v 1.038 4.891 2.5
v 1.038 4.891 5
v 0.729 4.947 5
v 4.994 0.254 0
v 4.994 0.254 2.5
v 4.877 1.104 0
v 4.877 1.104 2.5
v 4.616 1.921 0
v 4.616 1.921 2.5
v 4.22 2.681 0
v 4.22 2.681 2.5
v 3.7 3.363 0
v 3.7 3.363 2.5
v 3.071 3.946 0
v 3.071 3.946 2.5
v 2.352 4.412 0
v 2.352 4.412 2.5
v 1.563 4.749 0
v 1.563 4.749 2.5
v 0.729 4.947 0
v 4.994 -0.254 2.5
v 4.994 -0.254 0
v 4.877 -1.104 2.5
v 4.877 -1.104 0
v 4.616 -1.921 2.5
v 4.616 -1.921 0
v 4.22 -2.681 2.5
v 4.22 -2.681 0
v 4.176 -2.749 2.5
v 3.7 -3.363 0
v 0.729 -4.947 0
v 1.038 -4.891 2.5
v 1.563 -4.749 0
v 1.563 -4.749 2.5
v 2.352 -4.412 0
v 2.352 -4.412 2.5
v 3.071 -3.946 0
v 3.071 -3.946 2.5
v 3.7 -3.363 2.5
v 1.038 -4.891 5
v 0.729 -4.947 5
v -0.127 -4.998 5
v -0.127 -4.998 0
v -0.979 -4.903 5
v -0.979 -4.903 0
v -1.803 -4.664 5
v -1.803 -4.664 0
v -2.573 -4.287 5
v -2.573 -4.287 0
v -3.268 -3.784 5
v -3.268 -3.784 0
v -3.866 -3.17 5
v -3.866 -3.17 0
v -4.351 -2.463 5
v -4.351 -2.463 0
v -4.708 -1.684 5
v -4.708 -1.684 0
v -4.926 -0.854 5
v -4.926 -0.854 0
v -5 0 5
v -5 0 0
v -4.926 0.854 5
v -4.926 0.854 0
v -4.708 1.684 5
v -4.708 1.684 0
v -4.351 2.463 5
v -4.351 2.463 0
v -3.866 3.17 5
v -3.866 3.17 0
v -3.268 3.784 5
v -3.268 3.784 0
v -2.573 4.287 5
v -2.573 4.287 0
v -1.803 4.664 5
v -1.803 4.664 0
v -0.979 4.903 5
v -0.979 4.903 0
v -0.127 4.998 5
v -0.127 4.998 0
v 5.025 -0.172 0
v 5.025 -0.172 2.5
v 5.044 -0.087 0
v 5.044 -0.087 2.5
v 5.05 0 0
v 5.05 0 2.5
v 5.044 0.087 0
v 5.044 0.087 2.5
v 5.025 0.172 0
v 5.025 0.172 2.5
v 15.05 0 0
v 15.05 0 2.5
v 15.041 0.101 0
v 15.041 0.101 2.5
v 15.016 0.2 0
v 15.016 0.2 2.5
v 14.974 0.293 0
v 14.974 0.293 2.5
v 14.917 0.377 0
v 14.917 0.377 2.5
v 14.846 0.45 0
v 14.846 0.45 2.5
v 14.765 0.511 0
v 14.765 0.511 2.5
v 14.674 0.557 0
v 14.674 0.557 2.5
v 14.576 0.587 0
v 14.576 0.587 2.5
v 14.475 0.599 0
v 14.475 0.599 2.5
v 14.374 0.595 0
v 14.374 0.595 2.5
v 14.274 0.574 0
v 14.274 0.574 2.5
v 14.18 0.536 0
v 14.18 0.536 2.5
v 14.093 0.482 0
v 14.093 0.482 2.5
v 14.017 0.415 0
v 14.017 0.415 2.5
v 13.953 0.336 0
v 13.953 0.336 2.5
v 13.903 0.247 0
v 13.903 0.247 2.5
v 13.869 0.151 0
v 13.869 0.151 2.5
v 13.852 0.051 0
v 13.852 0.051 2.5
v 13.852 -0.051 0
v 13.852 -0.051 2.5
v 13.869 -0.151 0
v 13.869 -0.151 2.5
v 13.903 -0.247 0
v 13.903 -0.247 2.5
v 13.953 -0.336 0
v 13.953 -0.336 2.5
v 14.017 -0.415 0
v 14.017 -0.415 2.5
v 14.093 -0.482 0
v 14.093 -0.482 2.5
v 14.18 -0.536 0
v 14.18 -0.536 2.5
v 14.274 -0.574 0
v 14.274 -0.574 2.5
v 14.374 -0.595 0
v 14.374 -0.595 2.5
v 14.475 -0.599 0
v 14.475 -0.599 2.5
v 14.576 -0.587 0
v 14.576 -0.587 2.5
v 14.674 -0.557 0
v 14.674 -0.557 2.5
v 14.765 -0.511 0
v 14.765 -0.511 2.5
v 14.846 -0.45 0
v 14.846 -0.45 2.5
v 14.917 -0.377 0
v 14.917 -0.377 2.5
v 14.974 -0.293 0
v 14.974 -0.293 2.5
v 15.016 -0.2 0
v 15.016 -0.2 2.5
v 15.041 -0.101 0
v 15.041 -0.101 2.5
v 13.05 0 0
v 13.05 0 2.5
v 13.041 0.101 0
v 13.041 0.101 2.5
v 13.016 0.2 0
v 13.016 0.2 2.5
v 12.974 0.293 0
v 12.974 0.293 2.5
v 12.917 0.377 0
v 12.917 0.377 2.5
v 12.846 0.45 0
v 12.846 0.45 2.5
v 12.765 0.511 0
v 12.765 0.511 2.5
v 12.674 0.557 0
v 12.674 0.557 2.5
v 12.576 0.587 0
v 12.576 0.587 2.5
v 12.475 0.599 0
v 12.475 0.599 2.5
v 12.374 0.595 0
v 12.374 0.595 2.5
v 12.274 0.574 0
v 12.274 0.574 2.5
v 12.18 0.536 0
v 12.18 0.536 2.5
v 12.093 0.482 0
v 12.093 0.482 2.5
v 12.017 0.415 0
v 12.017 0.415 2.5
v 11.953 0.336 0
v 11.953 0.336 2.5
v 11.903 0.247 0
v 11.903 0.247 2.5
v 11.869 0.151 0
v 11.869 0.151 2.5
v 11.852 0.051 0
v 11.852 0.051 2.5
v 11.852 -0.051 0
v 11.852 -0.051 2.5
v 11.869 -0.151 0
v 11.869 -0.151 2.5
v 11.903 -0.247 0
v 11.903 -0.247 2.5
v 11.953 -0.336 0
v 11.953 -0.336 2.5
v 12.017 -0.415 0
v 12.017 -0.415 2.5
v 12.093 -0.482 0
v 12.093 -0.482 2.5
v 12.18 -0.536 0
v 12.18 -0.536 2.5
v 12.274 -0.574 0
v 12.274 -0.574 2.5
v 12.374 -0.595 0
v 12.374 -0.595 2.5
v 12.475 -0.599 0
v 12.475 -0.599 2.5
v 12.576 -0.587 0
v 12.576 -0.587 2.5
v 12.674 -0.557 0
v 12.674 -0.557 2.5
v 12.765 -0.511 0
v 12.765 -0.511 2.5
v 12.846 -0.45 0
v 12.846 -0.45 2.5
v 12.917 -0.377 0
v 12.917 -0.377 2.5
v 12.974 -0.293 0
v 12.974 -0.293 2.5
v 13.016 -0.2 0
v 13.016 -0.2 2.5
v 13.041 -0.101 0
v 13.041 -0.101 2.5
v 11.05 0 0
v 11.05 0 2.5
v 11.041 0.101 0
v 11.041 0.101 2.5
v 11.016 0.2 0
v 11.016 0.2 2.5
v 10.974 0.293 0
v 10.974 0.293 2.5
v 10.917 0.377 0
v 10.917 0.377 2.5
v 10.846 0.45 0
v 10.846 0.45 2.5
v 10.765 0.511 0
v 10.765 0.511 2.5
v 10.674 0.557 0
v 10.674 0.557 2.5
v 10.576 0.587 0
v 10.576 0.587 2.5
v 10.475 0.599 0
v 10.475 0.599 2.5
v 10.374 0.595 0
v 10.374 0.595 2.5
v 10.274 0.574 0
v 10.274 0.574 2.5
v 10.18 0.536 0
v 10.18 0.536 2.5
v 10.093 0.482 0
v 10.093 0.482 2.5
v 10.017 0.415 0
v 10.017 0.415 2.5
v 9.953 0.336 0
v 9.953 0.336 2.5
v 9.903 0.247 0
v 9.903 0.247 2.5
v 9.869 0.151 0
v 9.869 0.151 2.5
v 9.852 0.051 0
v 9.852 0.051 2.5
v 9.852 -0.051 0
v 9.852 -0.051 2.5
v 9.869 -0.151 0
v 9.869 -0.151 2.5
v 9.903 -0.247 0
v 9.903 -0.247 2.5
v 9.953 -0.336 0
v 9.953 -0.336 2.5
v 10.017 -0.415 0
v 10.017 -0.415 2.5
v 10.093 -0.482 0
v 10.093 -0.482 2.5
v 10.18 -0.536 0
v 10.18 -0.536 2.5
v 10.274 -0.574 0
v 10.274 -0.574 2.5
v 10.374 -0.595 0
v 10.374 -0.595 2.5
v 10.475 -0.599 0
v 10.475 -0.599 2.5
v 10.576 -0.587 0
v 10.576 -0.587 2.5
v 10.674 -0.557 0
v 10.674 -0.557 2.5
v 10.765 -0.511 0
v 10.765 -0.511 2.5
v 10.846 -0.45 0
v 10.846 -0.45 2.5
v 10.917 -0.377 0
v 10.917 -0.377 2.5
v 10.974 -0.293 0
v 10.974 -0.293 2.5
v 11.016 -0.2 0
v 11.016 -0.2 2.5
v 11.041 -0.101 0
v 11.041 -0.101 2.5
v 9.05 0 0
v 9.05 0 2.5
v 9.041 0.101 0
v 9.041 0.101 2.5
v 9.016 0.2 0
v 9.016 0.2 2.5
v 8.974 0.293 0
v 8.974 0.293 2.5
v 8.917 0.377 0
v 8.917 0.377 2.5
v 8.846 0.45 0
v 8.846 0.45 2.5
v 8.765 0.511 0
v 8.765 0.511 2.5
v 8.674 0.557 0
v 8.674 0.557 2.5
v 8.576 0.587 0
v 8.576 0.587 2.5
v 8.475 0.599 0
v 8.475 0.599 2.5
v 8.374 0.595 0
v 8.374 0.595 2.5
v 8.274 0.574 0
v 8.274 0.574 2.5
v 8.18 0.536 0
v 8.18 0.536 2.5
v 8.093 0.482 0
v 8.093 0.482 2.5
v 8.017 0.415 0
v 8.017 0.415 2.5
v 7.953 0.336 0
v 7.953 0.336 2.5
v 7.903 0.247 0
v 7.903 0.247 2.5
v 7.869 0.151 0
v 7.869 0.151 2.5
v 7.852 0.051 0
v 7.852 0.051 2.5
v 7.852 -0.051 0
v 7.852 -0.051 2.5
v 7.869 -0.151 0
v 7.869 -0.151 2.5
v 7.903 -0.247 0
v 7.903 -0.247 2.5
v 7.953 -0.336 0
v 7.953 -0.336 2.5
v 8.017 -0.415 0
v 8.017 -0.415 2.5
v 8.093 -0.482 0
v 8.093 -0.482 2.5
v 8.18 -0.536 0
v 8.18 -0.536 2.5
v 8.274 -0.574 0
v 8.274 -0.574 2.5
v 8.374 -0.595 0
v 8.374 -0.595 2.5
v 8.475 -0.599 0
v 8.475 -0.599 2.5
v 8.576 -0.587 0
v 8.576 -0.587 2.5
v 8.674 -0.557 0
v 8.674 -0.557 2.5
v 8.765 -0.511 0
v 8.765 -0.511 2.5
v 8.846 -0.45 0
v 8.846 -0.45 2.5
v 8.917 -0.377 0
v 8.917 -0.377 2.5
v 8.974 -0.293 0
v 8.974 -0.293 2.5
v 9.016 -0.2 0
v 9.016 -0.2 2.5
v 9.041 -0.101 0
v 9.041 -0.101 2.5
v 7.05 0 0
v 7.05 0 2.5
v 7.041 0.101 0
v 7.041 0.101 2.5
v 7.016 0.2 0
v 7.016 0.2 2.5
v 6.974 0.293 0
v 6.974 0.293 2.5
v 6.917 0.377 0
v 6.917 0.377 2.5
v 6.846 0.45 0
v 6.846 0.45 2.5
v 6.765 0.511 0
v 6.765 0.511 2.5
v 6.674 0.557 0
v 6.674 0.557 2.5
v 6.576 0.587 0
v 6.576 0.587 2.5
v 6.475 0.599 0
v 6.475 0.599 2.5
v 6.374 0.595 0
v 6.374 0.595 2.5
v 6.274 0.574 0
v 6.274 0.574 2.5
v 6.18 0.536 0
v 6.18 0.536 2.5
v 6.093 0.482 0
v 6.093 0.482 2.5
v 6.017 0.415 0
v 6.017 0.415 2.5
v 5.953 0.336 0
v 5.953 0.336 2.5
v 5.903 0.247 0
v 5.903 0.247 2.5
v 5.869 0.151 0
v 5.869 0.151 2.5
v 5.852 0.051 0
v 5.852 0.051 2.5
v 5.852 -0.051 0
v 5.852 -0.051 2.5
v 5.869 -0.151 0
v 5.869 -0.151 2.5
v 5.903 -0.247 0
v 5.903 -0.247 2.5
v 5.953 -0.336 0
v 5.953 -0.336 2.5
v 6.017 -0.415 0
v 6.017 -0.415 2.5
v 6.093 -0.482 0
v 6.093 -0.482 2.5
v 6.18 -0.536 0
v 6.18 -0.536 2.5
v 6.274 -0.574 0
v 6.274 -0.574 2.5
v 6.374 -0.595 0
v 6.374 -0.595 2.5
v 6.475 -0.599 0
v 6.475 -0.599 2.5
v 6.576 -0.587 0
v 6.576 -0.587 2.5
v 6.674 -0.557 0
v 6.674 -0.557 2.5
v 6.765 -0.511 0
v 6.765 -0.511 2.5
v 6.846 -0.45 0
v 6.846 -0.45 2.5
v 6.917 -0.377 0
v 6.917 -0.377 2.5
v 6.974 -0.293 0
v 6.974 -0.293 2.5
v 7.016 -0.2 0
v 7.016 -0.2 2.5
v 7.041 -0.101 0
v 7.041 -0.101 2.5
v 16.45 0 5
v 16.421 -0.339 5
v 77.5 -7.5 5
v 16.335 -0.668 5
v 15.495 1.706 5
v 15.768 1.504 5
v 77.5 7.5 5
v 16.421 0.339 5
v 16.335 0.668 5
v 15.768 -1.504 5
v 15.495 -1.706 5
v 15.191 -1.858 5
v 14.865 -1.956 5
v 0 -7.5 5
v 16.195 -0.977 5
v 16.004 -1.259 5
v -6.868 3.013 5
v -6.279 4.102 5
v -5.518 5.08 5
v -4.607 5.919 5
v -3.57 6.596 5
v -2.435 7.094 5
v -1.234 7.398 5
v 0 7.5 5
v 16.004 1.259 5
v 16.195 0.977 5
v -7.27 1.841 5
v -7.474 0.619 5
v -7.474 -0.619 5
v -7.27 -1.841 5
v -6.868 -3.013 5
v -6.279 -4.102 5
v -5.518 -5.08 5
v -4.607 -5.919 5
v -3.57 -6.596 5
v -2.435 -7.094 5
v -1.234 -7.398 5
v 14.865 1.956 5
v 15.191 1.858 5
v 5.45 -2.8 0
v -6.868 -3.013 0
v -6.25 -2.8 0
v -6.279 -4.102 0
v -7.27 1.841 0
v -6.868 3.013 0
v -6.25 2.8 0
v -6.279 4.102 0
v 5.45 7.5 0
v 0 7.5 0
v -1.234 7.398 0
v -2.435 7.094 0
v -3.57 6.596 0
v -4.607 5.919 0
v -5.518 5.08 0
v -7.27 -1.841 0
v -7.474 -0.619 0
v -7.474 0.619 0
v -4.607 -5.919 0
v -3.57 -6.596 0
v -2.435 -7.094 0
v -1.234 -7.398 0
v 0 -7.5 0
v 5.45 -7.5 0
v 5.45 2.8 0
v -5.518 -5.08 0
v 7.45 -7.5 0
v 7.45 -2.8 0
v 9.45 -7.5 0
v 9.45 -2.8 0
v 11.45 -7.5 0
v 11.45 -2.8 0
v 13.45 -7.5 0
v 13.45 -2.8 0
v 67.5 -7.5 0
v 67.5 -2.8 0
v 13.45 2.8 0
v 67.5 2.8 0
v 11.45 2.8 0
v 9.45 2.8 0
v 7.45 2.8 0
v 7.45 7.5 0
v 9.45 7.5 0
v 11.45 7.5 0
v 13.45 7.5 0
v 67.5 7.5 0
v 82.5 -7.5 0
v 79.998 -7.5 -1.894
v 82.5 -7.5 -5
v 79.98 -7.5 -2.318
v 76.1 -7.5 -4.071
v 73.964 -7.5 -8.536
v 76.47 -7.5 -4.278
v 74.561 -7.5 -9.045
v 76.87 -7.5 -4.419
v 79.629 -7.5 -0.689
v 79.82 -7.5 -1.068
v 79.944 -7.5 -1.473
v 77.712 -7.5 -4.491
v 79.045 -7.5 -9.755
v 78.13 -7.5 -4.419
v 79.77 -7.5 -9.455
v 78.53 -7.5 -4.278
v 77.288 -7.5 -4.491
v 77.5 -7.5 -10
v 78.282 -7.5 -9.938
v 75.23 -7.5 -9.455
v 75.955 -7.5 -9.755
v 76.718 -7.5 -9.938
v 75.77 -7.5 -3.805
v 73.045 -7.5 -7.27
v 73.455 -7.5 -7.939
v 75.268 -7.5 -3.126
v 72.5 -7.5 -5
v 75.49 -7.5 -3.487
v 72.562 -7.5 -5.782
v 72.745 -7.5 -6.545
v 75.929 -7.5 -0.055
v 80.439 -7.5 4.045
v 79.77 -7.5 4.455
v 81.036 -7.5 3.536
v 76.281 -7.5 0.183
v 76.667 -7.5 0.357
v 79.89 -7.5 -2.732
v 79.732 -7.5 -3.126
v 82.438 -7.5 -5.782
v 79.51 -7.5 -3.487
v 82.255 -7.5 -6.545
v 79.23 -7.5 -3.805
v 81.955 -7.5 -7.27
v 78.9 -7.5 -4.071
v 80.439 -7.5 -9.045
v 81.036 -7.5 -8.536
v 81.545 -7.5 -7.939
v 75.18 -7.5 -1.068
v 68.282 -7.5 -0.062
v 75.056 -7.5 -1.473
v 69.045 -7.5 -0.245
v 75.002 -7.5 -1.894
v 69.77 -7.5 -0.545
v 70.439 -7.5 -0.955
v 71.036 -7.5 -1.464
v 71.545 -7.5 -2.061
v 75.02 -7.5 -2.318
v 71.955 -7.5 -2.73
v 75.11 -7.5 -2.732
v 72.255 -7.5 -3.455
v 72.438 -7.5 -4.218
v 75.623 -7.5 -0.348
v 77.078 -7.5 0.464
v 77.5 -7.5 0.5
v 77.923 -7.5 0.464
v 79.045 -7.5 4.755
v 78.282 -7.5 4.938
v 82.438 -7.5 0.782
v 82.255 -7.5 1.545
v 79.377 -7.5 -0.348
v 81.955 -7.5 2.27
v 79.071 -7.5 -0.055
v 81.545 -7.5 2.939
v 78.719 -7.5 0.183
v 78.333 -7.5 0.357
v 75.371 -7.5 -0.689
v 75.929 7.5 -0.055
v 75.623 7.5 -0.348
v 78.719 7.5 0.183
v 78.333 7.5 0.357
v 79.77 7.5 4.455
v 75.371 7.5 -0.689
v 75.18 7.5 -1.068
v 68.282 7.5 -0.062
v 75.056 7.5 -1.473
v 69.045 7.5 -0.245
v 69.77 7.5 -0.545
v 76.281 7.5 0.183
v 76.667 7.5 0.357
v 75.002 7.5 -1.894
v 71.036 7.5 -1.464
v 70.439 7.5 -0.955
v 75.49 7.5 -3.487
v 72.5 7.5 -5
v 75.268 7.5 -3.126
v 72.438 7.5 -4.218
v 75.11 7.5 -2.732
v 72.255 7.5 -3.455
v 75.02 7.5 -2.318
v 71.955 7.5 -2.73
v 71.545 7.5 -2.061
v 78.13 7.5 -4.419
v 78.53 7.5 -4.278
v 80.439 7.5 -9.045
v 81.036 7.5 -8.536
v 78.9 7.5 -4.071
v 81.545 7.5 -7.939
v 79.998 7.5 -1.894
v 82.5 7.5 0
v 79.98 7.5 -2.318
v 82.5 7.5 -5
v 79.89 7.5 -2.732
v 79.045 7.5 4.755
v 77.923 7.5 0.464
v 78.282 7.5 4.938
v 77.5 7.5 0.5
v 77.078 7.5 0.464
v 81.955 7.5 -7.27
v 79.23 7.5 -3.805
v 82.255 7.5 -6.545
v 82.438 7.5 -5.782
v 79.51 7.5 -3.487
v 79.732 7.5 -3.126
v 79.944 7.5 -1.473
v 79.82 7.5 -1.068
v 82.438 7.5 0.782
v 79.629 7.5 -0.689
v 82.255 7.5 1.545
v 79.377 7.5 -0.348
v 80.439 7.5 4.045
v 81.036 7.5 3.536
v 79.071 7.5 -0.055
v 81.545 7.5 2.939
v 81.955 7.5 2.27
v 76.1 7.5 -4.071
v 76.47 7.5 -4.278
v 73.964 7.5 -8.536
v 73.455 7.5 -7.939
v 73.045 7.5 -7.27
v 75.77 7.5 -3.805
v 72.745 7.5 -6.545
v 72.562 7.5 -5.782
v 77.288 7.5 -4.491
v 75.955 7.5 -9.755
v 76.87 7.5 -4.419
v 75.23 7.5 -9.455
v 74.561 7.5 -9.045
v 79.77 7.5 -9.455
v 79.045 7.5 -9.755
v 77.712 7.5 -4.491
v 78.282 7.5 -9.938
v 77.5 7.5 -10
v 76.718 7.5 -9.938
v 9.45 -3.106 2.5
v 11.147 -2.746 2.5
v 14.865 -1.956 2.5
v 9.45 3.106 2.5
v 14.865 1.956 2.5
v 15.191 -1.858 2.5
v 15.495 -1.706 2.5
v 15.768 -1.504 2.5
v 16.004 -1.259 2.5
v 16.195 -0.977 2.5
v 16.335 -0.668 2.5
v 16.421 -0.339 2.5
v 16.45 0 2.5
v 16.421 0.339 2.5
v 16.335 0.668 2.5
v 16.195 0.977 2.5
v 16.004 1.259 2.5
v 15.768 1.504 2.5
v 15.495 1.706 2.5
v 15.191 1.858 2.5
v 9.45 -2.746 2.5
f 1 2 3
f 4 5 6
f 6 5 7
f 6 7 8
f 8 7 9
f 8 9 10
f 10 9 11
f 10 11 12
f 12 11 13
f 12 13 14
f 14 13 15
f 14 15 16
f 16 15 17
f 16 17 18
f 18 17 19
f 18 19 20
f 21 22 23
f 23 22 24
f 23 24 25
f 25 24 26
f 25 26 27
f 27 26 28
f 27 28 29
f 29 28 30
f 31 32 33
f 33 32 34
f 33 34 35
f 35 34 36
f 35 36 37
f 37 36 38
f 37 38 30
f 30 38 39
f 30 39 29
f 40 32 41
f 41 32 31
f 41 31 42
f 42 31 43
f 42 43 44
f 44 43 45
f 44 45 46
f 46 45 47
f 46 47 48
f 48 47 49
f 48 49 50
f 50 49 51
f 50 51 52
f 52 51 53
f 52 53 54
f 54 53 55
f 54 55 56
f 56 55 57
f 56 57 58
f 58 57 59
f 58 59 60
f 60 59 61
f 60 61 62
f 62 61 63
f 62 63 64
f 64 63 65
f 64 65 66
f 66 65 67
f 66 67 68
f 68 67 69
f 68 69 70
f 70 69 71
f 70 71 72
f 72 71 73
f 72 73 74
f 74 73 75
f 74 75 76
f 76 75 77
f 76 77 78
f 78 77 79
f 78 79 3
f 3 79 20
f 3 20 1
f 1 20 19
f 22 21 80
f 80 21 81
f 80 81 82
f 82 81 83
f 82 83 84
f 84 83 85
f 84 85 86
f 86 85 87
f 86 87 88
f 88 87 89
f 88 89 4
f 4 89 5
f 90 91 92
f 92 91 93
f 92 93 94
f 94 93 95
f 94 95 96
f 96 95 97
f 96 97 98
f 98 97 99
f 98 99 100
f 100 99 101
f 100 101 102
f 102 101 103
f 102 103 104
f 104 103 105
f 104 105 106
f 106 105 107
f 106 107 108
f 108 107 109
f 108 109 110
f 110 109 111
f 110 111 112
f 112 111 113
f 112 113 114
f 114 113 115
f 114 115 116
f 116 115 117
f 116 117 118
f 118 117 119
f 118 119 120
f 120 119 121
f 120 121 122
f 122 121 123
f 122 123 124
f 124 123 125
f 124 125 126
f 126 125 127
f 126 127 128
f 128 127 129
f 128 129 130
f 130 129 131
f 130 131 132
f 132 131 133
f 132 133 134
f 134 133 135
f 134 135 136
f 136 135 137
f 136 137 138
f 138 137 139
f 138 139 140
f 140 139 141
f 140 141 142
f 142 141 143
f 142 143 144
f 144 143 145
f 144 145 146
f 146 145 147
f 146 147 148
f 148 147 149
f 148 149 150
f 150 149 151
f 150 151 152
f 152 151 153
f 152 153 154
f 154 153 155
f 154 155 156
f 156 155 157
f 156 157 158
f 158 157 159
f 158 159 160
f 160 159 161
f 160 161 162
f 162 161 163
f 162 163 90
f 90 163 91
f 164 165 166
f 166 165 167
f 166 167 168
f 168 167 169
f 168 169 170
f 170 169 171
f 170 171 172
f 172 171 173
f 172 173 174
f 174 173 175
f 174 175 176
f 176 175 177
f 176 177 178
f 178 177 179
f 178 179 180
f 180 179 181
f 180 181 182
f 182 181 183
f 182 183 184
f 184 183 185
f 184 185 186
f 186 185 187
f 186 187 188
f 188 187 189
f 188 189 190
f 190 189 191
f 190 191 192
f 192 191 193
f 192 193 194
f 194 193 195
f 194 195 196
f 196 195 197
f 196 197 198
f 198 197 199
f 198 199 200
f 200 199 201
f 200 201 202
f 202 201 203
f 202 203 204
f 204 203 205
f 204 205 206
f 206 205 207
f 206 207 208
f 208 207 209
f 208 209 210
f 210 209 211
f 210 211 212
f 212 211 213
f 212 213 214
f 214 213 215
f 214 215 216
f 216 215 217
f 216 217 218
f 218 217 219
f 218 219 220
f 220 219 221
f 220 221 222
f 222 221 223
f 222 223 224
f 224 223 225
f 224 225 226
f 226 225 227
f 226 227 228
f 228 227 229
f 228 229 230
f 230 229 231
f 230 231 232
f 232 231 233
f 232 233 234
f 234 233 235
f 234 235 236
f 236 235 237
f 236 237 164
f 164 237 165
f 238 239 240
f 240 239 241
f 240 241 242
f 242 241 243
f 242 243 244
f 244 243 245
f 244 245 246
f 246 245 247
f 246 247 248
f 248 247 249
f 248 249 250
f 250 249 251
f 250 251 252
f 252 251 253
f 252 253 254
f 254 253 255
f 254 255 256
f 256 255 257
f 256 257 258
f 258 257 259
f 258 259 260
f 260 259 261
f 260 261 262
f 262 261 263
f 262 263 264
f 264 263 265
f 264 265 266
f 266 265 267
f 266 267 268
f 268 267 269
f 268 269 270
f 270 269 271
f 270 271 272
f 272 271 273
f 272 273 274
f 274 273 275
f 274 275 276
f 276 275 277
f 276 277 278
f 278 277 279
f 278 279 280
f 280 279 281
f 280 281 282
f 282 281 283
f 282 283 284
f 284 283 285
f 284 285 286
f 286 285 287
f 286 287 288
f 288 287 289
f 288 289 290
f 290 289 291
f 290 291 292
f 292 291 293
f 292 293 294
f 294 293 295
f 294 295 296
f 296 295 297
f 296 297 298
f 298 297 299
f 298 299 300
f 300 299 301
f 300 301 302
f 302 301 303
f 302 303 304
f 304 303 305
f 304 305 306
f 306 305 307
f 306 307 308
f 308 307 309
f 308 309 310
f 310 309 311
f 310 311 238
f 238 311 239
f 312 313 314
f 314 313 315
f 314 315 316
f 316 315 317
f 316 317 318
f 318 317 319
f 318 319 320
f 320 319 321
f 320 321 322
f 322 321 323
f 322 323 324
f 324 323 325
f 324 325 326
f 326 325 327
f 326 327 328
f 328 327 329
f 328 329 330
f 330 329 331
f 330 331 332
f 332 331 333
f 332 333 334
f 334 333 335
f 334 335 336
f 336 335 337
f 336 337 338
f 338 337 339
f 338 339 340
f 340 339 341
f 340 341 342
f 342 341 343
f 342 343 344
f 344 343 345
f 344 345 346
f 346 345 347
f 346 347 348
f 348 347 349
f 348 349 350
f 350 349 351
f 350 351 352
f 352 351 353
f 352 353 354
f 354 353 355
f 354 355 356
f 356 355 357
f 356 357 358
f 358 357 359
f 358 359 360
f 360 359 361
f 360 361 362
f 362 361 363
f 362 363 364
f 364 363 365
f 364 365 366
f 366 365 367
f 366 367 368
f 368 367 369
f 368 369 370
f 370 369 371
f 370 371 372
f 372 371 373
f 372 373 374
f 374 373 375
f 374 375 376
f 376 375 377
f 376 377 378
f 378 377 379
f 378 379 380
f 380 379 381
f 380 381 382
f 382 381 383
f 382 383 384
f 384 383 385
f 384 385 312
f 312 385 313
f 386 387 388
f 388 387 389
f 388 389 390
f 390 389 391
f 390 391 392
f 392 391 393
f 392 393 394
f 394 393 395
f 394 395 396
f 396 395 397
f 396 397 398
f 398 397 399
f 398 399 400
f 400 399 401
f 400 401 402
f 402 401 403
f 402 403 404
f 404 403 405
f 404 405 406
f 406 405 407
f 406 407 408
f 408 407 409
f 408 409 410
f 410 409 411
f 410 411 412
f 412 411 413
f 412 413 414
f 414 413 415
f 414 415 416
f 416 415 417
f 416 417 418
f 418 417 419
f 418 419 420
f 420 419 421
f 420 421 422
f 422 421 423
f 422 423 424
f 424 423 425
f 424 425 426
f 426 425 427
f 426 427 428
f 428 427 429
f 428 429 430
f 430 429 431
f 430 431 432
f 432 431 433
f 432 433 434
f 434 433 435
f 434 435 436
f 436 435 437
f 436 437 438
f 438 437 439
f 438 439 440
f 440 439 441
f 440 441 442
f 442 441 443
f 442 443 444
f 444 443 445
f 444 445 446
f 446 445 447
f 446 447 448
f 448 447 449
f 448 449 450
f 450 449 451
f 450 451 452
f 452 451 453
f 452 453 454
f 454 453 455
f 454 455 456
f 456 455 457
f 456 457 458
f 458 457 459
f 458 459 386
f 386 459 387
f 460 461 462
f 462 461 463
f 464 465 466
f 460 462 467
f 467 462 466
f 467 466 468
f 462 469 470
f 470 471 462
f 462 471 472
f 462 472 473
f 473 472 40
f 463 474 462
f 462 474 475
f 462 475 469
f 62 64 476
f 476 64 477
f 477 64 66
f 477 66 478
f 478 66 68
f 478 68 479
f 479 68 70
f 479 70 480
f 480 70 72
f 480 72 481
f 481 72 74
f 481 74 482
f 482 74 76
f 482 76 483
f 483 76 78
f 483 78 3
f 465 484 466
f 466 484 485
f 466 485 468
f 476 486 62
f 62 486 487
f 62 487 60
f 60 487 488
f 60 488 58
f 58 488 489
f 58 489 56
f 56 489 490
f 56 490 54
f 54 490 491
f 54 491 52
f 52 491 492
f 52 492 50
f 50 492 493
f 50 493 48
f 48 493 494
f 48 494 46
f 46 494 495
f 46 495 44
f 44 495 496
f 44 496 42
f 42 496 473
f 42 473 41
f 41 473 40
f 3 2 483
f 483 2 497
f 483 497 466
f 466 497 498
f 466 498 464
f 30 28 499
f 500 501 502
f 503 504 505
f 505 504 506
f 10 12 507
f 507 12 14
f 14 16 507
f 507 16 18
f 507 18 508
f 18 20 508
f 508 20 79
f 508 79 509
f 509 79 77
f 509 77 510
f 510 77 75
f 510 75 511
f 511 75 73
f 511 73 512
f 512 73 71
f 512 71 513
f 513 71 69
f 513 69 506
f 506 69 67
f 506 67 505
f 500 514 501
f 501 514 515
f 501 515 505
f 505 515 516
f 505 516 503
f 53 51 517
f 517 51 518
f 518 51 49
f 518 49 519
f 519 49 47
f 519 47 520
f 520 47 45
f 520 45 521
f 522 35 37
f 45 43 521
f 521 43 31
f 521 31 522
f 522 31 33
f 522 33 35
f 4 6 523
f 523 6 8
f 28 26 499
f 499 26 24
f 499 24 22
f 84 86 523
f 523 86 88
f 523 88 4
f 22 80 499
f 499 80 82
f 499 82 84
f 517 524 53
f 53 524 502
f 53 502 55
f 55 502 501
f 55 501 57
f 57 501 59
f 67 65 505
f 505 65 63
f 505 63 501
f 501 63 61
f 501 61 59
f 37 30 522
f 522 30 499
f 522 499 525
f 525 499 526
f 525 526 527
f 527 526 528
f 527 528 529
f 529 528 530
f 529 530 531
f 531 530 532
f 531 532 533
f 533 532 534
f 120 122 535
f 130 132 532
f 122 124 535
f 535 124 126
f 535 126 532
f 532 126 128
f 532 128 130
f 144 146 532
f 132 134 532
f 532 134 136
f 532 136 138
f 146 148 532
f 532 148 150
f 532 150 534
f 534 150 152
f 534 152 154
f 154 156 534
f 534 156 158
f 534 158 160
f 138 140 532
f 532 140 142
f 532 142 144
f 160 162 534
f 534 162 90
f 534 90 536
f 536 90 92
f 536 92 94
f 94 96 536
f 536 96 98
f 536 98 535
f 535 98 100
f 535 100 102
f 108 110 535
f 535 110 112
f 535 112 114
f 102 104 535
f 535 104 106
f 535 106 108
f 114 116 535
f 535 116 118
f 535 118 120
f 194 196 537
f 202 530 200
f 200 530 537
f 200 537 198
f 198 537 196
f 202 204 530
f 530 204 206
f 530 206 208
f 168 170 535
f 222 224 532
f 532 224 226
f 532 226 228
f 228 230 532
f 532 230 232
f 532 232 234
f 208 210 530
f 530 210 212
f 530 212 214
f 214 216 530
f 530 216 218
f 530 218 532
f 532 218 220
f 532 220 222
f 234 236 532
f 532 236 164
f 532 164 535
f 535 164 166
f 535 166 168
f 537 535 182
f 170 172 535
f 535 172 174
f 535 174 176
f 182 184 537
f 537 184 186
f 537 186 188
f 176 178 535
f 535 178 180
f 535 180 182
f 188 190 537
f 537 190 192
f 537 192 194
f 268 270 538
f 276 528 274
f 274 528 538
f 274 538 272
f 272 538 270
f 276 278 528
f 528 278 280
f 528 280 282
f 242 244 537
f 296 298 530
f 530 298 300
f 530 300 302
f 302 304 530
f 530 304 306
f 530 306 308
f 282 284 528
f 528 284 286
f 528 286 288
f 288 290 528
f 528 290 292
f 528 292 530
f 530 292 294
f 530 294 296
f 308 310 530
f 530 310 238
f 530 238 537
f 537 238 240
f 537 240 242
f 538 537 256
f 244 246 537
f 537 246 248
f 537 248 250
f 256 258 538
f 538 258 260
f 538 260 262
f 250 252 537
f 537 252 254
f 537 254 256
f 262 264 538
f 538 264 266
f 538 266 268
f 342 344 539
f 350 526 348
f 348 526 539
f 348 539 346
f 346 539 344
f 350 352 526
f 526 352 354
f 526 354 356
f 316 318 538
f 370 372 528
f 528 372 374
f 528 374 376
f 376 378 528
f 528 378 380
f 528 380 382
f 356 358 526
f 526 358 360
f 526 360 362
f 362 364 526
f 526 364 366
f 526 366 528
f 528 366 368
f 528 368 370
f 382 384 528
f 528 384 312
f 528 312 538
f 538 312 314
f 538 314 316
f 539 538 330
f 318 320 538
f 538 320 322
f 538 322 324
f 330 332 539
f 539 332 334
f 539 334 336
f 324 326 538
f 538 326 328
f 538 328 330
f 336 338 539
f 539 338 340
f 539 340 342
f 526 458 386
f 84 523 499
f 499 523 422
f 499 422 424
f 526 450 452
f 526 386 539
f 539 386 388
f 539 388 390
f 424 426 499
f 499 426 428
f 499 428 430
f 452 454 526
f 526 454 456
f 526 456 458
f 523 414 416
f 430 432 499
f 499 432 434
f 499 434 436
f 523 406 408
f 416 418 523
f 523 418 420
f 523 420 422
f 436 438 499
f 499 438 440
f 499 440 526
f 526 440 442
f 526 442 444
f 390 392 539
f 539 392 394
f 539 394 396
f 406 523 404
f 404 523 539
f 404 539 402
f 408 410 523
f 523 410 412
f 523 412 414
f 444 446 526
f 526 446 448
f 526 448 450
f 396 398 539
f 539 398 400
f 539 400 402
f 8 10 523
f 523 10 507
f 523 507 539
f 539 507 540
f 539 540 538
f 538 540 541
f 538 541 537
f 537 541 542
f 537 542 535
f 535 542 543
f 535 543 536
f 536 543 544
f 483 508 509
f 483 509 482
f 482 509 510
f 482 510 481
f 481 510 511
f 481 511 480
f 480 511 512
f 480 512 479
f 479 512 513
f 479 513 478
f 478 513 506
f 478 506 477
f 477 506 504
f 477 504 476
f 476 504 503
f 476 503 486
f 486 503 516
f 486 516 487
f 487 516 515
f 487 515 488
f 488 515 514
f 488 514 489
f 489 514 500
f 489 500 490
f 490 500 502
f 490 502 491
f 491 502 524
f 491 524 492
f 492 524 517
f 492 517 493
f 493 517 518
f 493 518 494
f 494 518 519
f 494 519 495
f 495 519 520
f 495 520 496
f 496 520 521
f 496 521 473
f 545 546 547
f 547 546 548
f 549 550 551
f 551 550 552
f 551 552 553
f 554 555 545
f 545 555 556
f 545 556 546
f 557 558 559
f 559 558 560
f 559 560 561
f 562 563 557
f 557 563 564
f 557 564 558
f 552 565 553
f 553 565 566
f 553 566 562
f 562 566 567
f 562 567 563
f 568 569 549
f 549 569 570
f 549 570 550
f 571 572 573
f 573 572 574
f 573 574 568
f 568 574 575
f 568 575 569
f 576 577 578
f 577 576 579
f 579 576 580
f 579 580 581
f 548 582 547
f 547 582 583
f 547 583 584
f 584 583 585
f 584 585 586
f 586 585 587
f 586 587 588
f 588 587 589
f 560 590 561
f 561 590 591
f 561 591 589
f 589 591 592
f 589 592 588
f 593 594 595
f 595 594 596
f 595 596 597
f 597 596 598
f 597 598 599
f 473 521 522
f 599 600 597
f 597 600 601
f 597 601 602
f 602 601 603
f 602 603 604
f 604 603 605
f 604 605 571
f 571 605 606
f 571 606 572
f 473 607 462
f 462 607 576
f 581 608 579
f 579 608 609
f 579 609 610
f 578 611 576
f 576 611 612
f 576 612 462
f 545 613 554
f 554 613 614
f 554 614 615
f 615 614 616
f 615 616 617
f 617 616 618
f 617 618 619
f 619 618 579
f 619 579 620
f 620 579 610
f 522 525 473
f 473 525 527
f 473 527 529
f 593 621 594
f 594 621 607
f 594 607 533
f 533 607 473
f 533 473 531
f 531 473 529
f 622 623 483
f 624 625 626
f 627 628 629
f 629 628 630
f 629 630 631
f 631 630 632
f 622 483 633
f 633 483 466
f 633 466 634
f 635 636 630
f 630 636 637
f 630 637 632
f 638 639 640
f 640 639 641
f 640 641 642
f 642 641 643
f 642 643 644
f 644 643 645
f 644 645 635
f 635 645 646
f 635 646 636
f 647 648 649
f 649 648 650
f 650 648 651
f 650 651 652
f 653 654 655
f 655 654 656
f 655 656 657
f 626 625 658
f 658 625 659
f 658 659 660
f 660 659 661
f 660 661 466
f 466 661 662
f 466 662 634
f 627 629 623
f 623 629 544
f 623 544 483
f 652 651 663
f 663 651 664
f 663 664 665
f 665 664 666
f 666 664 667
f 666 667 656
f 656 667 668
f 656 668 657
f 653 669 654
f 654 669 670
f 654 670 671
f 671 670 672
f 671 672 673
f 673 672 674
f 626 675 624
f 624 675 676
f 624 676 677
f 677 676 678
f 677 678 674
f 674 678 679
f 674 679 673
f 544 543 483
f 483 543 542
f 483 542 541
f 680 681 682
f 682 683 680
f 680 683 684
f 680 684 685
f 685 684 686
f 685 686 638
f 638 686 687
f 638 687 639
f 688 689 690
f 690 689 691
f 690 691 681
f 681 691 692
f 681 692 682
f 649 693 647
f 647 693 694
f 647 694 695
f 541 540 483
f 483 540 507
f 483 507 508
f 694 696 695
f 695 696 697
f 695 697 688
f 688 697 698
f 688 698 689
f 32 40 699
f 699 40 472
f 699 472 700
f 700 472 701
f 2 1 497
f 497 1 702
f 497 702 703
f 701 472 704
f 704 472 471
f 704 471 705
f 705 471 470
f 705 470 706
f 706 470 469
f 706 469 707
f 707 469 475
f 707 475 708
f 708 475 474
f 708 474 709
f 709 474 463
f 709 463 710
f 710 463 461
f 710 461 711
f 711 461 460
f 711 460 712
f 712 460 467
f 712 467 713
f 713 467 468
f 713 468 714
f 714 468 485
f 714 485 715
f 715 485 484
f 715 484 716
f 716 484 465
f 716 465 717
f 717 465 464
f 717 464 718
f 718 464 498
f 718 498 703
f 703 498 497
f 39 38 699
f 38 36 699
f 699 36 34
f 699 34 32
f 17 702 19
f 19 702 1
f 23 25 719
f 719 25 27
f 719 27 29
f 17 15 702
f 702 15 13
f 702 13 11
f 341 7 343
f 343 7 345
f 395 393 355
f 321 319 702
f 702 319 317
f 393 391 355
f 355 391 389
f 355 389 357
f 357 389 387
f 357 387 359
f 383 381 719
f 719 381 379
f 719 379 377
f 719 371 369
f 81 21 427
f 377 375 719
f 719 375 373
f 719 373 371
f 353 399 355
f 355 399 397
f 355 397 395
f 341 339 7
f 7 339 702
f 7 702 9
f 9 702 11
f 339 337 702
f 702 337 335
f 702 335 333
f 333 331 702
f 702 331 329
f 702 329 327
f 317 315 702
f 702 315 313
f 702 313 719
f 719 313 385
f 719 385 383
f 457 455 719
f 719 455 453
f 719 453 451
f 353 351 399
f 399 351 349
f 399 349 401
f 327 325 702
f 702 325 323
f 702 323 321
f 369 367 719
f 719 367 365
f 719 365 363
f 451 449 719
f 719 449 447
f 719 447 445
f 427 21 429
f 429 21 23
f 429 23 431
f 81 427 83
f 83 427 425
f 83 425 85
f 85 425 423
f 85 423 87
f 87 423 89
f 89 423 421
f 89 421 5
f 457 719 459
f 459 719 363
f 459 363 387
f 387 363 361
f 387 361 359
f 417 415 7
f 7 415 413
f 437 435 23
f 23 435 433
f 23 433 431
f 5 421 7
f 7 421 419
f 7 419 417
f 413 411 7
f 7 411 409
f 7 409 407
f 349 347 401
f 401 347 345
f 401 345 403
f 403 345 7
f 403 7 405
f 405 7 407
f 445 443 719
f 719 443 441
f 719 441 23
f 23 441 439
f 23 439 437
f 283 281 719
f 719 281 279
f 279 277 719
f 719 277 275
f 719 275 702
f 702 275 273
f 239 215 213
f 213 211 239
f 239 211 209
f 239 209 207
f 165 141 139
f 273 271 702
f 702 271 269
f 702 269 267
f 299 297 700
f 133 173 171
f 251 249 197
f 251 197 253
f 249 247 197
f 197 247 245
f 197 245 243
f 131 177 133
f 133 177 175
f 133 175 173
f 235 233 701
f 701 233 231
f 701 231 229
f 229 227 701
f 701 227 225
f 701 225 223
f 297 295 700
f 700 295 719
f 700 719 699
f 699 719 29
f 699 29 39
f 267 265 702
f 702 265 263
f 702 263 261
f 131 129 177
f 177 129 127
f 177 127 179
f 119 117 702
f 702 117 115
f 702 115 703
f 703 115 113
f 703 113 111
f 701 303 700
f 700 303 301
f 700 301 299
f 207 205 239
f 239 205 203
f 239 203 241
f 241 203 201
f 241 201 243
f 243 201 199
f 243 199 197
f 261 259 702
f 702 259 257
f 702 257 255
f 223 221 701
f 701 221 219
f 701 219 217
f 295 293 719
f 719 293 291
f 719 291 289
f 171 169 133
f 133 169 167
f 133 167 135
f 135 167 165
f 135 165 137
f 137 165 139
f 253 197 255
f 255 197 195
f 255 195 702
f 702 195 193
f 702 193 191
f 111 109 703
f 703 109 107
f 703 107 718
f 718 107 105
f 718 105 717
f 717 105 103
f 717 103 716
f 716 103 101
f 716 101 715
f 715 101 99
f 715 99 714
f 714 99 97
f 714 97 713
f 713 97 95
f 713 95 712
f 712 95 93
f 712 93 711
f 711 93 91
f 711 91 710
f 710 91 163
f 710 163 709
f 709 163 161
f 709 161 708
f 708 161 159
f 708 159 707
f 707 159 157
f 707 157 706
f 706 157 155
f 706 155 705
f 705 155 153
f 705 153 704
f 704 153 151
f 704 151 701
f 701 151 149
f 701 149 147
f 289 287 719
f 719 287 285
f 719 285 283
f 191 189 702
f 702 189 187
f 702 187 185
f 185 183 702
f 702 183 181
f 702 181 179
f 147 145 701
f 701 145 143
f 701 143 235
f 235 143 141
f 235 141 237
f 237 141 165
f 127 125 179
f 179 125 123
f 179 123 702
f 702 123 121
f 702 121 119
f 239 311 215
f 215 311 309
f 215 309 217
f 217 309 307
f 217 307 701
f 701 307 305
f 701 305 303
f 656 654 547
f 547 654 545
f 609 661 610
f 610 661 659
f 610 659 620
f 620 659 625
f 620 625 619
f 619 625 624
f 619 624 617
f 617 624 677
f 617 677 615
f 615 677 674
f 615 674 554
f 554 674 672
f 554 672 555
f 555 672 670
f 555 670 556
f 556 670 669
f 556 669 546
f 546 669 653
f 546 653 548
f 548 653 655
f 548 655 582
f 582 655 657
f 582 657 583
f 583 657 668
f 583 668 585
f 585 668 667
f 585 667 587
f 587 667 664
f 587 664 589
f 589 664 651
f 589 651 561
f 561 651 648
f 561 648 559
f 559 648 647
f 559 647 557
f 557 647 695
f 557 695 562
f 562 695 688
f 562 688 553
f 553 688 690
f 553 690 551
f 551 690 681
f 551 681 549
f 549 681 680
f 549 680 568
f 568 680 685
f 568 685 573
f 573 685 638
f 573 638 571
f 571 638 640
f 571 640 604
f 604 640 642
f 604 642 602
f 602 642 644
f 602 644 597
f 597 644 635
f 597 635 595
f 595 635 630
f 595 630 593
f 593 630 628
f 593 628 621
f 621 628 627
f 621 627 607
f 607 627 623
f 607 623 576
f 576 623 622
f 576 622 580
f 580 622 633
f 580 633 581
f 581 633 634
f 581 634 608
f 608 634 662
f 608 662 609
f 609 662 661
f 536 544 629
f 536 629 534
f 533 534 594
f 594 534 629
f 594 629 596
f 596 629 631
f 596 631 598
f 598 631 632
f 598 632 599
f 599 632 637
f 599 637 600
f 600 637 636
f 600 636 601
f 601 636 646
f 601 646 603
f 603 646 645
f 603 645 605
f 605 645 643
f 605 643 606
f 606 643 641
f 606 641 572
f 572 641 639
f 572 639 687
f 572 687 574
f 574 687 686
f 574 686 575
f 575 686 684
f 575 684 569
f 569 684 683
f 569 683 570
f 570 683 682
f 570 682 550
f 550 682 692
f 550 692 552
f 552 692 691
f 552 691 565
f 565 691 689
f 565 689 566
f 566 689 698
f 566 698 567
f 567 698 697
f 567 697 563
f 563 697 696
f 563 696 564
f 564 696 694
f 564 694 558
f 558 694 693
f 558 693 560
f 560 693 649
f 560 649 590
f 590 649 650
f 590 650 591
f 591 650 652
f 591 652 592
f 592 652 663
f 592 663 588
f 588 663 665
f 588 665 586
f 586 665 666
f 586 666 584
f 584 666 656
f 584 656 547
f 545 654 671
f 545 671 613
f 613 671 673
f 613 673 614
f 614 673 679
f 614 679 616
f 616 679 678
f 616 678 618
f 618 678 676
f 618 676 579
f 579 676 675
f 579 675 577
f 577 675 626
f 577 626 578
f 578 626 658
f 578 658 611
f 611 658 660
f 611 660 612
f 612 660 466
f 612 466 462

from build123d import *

# Parameters (mm, degrees)
SKETCH1_R           = 5
SKETCH1_R_2         = 2.5
BOSS_EXTRUDE1_DEPTH = 5
SKETCH2_R           = 0.6
CUT_EXTRUDE1_DEPTH  = 83.990963363
CUT_EXTRUDE2_START  = -2.5
CUT_EXTRUDE2_DEPTH  = 2.5
SKETCH4_W           = 10
SKETCH4_H           = 15
BOSS_EXTRUDE2_DEPTH = 15
SKETCH5_R           = 2.5
CUT_EXTRUDE3_DEPTH  = 15
FILLET1_R           = 5


with BuildPart() as part:
    # Sketch1 → Boss-Extrude1 (new body)
    with BuildSketch(Plane.XY):
        with BuildLine():
            Line((0, 7.5), (75, 7.5))
            ThreePointArc((75, 7.5), (82.5, 0), (75, -7.5))
            Line((75, -7.5), (0, -7.5))
            ThreePointArc((0, -7.5), (-7.5, 0), (0, 7.5))
        make_face()
        Circle(SKETCH1_R, mode=Mode.SUBTRACT)
        with Locations((75, 0)):
            Circle(SKETCH1_R_2, mode=Mode.SUBTRACT)
    extrude(amount=BOSS_EXTRUDE1_DEPTH)

    # Sketch2 → Cut-Extrude1 (cut, through all)
    with BuildSketch(Plane.XY.offset(5)):
        with Locations((4.45, 0)):
            Circle(SKETCH2_R)
        with Locations((6.45, 0)):
            Circle(SKETCH2_R)
        with Locations((8.45, 0)):
            Circle(SKETCH2_R)
        with Locations((10.45, 0)):
            Circle(SKETCH2_R)
        with Locations((12.45, 0)):
            Circle(SKETCH2_R)
        with Locations((14.45, 0)):
            Circle(SKETCH2_R)
    extrude(amount=-CUT_EXTRUDE1_DEPTH, mode=Mode.SUBTRACT)

    # Sketch3 → Cut-Extrude2 (cut)
    with BuildSketch(Plane.XY.offset(5).offset(CUT_EXTRUDE2_START)):
        with BuildLine():
            Line((14.865224913, 1.956422314), (1.038062284, 4.891055785))
            ThreePointArc((1.038062284, 4.891055785), (5, 0), (1.038062284, -4.891055785))
            Line((1.038062284, -4.891055785), (14.865224913, -1.956422314))
            ThreePointArc((14.865224913, -1.956422314), (16.45, 0), (14.865224913, 1.956422314))
        make_face()
    extrude(amount=CUT_EXTRUDE2_DEPTH, mode=Mode.SUBTRACT)

    # Sketch4 → Boss-Extrude2 (add)
    with BuildSketch(Plane(origin=(0, 7.5, 0), x_dir=(1, 0, 0), z_dir=(0, 1, 0))):
        with Locations((77.5, 2.5)):
            Rectangle(SKETCH4_W, SKETCH4_H)
    extrude(amount=-BOSS_EXTRUDE2_DEPTH)

    # Sketch5 → Cut-Extrude3 (cut)
    with BuildSketch(Plane(origin=(0, 7.5, 0), x_dir=(1, 0, 0), z_dir=(0, 1, 0))):
        with Locations(Location((77.5, 2, 0), (0, 0, 270))):
            Circle(SKETCH5_R)
    extrude(amount=-CUT_EXTRUDE3_DEPTH, mode=Mode.SUBTRACT)

    # Fillet1
    fillet1_edges = [part.edges().sort_by_distance(p)[0] for p in [
        (82.5, 0, -10),
        (72.5, 0, -10),
        (72.5, 0, 0),
        (82.5, -3.75, 5),
    ]]
    fillet(fillet1_edges, radius=FILLET1_R - 0.0001)  # a hair under: the kernel refuses the full size


solid = part.part
